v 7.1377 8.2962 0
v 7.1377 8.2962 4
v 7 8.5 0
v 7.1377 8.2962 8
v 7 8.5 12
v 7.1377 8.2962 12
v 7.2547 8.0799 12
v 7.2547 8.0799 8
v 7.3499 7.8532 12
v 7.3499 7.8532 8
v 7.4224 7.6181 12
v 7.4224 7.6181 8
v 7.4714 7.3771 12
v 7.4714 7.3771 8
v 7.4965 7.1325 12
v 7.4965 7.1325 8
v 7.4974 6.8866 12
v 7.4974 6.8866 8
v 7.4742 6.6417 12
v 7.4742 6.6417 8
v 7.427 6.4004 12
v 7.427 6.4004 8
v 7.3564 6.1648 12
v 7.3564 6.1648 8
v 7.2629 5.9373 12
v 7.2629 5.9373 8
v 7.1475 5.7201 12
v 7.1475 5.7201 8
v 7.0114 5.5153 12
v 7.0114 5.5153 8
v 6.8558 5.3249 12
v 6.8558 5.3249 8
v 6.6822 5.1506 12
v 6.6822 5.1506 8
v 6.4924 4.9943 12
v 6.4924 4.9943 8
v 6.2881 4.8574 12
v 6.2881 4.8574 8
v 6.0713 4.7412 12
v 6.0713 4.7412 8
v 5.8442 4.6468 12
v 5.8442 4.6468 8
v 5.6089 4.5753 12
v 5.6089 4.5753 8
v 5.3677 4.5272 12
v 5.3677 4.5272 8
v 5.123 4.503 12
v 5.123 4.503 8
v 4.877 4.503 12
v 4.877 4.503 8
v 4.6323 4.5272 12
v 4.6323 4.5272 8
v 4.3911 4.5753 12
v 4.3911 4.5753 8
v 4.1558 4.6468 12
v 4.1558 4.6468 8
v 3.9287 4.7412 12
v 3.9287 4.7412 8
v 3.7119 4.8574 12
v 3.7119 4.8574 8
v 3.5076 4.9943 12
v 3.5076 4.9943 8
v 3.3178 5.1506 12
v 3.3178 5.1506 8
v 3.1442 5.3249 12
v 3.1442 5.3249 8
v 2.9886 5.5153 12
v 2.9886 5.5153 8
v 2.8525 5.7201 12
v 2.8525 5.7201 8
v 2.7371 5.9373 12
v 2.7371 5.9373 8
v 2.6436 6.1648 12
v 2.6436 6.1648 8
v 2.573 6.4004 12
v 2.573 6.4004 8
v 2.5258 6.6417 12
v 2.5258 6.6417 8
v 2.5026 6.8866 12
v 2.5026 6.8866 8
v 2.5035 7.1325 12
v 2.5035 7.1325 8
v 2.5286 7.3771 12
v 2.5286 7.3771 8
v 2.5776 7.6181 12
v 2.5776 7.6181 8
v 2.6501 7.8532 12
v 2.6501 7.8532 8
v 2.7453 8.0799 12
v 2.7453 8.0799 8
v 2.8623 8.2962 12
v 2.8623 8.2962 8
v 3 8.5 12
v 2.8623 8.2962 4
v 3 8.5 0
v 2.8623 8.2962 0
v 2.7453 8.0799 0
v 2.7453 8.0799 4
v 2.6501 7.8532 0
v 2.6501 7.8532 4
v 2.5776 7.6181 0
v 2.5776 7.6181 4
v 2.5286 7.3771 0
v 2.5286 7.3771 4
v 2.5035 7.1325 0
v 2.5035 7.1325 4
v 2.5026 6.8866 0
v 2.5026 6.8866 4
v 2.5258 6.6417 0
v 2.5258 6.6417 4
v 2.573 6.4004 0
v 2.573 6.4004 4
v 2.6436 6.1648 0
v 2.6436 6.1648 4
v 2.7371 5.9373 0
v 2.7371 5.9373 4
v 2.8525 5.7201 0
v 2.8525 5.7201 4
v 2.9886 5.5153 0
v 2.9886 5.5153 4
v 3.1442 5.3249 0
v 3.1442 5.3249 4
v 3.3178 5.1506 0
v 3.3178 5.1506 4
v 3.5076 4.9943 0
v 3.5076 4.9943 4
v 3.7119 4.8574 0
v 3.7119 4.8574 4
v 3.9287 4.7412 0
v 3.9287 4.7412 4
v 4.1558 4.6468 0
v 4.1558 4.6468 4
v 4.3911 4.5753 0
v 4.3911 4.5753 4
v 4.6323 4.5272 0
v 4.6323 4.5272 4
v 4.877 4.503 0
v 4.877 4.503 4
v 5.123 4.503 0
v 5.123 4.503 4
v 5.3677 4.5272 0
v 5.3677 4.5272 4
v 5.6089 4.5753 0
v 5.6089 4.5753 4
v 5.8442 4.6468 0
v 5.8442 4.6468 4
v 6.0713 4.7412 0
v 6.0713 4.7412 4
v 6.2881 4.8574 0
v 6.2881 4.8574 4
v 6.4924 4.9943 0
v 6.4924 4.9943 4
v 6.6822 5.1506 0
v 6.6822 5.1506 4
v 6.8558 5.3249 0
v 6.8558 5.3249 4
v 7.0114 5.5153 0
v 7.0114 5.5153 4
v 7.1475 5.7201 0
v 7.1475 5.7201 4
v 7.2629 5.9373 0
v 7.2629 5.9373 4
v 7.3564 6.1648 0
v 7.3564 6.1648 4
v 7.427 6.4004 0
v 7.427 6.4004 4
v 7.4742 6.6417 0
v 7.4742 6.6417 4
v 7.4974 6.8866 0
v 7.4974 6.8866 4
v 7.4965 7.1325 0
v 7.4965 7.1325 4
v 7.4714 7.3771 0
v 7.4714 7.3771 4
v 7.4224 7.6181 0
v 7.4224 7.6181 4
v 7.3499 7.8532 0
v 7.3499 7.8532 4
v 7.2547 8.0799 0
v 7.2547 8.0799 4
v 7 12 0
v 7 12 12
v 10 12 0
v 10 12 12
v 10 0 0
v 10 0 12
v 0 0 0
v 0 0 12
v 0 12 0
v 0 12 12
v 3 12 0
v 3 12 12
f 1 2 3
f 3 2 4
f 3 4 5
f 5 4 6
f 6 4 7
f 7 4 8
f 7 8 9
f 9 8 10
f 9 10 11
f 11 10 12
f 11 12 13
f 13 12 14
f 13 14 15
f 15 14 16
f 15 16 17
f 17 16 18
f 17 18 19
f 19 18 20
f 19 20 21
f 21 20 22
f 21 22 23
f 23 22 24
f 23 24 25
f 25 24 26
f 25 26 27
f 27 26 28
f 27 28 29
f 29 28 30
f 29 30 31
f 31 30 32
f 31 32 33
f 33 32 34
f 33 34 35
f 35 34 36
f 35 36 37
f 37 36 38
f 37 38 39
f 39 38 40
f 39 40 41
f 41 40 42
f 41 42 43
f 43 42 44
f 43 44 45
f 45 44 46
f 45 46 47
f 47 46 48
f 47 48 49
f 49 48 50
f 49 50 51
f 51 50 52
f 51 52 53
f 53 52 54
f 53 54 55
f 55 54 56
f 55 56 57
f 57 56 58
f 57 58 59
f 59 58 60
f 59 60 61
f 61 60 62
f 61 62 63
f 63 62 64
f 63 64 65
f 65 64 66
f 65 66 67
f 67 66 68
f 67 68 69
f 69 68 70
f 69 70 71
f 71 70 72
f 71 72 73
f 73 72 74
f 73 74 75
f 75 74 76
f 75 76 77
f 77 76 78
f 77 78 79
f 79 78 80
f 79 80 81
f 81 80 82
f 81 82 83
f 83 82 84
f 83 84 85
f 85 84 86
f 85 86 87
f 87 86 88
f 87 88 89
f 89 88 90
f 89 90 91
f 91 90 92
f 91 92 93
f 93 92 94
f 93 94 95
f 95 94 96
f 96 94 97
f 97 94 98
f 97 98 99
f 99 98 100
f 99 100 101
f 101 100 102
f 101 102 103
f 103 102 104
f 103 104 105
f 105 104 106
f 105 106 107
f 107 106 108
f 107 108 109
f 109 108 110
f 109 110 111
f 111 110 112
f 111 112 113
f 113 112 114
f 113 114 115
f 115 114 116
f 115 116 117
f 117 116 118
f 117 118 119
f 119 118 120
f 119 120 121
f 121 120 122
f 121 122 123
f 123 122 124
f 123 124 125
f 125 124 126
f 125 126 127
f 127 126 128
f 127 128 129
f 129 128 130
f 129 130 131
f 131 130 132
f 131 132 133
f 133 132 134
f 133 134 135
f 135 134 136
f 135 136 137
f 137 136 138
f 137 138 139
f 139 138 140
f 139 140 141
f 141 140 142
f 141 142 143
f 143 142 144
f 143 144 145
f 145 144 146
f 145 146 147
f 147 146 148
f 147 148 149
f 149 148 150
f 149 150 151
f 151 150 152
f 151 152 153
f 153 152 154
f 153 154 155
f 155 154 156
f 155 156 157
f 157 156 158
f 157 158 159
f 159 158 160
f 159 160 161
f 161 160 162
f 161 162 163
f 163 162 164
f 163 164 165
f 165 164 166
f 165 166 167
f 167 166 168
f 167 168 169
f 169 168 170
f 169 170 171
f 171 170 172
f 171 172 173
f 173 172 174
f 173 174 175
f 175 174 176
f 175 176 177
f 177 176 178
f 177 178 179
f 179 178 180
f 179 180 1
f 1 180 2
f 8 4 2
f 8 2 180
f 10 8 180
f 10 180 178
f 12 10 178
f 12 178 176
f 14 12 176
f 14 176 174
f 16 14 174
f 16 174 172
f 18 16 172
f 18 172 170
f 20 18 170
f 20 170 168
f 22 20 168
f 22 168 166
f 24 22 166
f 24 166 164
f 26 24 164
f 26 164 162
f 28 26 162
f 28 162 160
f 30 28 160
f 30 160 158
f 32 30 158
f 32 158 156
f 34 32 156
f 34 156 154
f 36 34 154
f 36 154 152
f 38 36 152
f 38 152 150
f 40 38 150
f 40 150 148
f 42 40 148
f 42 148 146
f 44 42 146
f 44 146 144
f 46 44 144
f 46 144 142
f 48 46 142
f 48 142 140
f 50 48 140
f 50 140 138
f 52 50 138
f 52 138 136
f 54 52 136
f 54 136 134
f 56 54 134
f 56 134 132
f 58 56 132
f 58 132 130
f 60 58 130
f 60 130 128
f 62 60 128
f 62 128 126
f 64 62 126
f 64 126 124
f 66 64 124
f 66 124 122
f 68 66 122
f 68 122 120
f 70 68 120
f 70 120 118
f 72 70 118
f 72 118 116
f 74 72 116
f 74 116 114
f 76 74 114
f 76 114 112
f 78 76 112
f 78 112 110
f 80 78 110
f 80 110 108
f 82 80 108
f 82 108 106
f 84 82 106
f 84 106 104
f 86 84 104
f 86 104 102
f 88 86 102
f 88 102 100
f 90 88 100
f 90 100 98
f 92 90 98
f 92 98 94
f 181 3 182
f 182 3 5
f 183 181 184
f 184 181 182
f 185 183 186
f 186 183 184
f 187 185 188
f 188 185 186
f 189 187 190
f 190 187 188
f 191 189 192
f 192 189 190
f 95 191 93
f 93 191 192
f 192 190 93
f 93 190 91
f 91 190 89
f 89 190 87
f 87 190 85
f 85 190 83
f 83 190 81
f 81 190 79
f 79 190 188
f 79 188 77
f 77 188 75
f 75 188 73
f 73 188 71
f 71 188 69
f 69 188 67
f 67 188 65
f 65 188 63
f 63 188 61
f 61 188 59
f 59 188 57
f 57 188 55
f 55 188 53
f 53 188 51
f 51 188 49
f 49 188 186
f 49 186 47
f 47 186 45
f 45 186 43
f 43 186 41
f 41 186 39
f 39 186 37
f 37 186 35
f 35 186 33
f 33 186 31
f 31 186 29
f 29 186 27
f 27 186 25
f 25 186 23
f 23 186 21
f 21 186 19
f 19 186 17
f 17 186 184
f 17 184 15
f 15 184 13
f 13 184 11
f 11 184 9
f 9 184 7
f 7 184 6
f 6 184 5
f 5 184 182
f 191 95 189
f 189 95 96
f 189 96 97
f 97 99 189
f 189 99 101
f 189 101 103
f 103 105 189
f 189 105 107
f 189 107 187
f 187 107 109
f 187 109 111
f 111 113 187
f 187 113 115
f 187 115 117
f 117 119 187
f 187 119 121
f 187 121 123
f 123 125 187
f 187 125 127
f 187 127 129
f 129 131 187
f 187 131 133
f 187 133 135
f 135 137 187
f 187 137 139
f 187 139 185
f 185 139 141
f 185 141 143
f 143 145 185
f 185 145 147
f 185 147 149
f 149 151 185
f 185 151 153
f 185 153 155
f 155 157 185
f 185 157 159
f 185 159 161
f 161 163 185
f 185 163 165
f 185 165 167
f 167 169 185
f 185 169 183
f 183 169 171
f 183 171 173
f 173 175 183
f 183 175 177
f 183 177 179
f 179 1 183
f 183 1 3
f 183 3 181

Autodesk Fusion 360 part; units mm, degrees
sketch "Sketch1" plane through (0, 0, 0) normal (0, 0, 1) x (1, 0, 0)
  line L0 (0, 0) -> (10, 0)
  line L1 (10, 0) -> (10, 12)
  line L2 (10, 12) -> (0, 12)
  line L3 (0, 12) -> (0, 0)
  line L4 (5, 0) -> (5, 7)
  circle A0 centre (5, 7) radius 2.5
  line L5 (5, 7) -> (7, 7)
  line L6 (7, 7) -> (7, 12)
  line L7 (3, 7) -> (3, 12)
  dimension "d1" = 10
  dimension "d2" = 12
  dimension "d3" = 7
  dimension "d4" = 5
  dimension "d5" = 2
extrude "Extrude1" add sketch "Sketch1" along normal blind 12 contours L0 L2 L3 L4 A0 L7 | L0 L1 L2 L4 A0 L6
